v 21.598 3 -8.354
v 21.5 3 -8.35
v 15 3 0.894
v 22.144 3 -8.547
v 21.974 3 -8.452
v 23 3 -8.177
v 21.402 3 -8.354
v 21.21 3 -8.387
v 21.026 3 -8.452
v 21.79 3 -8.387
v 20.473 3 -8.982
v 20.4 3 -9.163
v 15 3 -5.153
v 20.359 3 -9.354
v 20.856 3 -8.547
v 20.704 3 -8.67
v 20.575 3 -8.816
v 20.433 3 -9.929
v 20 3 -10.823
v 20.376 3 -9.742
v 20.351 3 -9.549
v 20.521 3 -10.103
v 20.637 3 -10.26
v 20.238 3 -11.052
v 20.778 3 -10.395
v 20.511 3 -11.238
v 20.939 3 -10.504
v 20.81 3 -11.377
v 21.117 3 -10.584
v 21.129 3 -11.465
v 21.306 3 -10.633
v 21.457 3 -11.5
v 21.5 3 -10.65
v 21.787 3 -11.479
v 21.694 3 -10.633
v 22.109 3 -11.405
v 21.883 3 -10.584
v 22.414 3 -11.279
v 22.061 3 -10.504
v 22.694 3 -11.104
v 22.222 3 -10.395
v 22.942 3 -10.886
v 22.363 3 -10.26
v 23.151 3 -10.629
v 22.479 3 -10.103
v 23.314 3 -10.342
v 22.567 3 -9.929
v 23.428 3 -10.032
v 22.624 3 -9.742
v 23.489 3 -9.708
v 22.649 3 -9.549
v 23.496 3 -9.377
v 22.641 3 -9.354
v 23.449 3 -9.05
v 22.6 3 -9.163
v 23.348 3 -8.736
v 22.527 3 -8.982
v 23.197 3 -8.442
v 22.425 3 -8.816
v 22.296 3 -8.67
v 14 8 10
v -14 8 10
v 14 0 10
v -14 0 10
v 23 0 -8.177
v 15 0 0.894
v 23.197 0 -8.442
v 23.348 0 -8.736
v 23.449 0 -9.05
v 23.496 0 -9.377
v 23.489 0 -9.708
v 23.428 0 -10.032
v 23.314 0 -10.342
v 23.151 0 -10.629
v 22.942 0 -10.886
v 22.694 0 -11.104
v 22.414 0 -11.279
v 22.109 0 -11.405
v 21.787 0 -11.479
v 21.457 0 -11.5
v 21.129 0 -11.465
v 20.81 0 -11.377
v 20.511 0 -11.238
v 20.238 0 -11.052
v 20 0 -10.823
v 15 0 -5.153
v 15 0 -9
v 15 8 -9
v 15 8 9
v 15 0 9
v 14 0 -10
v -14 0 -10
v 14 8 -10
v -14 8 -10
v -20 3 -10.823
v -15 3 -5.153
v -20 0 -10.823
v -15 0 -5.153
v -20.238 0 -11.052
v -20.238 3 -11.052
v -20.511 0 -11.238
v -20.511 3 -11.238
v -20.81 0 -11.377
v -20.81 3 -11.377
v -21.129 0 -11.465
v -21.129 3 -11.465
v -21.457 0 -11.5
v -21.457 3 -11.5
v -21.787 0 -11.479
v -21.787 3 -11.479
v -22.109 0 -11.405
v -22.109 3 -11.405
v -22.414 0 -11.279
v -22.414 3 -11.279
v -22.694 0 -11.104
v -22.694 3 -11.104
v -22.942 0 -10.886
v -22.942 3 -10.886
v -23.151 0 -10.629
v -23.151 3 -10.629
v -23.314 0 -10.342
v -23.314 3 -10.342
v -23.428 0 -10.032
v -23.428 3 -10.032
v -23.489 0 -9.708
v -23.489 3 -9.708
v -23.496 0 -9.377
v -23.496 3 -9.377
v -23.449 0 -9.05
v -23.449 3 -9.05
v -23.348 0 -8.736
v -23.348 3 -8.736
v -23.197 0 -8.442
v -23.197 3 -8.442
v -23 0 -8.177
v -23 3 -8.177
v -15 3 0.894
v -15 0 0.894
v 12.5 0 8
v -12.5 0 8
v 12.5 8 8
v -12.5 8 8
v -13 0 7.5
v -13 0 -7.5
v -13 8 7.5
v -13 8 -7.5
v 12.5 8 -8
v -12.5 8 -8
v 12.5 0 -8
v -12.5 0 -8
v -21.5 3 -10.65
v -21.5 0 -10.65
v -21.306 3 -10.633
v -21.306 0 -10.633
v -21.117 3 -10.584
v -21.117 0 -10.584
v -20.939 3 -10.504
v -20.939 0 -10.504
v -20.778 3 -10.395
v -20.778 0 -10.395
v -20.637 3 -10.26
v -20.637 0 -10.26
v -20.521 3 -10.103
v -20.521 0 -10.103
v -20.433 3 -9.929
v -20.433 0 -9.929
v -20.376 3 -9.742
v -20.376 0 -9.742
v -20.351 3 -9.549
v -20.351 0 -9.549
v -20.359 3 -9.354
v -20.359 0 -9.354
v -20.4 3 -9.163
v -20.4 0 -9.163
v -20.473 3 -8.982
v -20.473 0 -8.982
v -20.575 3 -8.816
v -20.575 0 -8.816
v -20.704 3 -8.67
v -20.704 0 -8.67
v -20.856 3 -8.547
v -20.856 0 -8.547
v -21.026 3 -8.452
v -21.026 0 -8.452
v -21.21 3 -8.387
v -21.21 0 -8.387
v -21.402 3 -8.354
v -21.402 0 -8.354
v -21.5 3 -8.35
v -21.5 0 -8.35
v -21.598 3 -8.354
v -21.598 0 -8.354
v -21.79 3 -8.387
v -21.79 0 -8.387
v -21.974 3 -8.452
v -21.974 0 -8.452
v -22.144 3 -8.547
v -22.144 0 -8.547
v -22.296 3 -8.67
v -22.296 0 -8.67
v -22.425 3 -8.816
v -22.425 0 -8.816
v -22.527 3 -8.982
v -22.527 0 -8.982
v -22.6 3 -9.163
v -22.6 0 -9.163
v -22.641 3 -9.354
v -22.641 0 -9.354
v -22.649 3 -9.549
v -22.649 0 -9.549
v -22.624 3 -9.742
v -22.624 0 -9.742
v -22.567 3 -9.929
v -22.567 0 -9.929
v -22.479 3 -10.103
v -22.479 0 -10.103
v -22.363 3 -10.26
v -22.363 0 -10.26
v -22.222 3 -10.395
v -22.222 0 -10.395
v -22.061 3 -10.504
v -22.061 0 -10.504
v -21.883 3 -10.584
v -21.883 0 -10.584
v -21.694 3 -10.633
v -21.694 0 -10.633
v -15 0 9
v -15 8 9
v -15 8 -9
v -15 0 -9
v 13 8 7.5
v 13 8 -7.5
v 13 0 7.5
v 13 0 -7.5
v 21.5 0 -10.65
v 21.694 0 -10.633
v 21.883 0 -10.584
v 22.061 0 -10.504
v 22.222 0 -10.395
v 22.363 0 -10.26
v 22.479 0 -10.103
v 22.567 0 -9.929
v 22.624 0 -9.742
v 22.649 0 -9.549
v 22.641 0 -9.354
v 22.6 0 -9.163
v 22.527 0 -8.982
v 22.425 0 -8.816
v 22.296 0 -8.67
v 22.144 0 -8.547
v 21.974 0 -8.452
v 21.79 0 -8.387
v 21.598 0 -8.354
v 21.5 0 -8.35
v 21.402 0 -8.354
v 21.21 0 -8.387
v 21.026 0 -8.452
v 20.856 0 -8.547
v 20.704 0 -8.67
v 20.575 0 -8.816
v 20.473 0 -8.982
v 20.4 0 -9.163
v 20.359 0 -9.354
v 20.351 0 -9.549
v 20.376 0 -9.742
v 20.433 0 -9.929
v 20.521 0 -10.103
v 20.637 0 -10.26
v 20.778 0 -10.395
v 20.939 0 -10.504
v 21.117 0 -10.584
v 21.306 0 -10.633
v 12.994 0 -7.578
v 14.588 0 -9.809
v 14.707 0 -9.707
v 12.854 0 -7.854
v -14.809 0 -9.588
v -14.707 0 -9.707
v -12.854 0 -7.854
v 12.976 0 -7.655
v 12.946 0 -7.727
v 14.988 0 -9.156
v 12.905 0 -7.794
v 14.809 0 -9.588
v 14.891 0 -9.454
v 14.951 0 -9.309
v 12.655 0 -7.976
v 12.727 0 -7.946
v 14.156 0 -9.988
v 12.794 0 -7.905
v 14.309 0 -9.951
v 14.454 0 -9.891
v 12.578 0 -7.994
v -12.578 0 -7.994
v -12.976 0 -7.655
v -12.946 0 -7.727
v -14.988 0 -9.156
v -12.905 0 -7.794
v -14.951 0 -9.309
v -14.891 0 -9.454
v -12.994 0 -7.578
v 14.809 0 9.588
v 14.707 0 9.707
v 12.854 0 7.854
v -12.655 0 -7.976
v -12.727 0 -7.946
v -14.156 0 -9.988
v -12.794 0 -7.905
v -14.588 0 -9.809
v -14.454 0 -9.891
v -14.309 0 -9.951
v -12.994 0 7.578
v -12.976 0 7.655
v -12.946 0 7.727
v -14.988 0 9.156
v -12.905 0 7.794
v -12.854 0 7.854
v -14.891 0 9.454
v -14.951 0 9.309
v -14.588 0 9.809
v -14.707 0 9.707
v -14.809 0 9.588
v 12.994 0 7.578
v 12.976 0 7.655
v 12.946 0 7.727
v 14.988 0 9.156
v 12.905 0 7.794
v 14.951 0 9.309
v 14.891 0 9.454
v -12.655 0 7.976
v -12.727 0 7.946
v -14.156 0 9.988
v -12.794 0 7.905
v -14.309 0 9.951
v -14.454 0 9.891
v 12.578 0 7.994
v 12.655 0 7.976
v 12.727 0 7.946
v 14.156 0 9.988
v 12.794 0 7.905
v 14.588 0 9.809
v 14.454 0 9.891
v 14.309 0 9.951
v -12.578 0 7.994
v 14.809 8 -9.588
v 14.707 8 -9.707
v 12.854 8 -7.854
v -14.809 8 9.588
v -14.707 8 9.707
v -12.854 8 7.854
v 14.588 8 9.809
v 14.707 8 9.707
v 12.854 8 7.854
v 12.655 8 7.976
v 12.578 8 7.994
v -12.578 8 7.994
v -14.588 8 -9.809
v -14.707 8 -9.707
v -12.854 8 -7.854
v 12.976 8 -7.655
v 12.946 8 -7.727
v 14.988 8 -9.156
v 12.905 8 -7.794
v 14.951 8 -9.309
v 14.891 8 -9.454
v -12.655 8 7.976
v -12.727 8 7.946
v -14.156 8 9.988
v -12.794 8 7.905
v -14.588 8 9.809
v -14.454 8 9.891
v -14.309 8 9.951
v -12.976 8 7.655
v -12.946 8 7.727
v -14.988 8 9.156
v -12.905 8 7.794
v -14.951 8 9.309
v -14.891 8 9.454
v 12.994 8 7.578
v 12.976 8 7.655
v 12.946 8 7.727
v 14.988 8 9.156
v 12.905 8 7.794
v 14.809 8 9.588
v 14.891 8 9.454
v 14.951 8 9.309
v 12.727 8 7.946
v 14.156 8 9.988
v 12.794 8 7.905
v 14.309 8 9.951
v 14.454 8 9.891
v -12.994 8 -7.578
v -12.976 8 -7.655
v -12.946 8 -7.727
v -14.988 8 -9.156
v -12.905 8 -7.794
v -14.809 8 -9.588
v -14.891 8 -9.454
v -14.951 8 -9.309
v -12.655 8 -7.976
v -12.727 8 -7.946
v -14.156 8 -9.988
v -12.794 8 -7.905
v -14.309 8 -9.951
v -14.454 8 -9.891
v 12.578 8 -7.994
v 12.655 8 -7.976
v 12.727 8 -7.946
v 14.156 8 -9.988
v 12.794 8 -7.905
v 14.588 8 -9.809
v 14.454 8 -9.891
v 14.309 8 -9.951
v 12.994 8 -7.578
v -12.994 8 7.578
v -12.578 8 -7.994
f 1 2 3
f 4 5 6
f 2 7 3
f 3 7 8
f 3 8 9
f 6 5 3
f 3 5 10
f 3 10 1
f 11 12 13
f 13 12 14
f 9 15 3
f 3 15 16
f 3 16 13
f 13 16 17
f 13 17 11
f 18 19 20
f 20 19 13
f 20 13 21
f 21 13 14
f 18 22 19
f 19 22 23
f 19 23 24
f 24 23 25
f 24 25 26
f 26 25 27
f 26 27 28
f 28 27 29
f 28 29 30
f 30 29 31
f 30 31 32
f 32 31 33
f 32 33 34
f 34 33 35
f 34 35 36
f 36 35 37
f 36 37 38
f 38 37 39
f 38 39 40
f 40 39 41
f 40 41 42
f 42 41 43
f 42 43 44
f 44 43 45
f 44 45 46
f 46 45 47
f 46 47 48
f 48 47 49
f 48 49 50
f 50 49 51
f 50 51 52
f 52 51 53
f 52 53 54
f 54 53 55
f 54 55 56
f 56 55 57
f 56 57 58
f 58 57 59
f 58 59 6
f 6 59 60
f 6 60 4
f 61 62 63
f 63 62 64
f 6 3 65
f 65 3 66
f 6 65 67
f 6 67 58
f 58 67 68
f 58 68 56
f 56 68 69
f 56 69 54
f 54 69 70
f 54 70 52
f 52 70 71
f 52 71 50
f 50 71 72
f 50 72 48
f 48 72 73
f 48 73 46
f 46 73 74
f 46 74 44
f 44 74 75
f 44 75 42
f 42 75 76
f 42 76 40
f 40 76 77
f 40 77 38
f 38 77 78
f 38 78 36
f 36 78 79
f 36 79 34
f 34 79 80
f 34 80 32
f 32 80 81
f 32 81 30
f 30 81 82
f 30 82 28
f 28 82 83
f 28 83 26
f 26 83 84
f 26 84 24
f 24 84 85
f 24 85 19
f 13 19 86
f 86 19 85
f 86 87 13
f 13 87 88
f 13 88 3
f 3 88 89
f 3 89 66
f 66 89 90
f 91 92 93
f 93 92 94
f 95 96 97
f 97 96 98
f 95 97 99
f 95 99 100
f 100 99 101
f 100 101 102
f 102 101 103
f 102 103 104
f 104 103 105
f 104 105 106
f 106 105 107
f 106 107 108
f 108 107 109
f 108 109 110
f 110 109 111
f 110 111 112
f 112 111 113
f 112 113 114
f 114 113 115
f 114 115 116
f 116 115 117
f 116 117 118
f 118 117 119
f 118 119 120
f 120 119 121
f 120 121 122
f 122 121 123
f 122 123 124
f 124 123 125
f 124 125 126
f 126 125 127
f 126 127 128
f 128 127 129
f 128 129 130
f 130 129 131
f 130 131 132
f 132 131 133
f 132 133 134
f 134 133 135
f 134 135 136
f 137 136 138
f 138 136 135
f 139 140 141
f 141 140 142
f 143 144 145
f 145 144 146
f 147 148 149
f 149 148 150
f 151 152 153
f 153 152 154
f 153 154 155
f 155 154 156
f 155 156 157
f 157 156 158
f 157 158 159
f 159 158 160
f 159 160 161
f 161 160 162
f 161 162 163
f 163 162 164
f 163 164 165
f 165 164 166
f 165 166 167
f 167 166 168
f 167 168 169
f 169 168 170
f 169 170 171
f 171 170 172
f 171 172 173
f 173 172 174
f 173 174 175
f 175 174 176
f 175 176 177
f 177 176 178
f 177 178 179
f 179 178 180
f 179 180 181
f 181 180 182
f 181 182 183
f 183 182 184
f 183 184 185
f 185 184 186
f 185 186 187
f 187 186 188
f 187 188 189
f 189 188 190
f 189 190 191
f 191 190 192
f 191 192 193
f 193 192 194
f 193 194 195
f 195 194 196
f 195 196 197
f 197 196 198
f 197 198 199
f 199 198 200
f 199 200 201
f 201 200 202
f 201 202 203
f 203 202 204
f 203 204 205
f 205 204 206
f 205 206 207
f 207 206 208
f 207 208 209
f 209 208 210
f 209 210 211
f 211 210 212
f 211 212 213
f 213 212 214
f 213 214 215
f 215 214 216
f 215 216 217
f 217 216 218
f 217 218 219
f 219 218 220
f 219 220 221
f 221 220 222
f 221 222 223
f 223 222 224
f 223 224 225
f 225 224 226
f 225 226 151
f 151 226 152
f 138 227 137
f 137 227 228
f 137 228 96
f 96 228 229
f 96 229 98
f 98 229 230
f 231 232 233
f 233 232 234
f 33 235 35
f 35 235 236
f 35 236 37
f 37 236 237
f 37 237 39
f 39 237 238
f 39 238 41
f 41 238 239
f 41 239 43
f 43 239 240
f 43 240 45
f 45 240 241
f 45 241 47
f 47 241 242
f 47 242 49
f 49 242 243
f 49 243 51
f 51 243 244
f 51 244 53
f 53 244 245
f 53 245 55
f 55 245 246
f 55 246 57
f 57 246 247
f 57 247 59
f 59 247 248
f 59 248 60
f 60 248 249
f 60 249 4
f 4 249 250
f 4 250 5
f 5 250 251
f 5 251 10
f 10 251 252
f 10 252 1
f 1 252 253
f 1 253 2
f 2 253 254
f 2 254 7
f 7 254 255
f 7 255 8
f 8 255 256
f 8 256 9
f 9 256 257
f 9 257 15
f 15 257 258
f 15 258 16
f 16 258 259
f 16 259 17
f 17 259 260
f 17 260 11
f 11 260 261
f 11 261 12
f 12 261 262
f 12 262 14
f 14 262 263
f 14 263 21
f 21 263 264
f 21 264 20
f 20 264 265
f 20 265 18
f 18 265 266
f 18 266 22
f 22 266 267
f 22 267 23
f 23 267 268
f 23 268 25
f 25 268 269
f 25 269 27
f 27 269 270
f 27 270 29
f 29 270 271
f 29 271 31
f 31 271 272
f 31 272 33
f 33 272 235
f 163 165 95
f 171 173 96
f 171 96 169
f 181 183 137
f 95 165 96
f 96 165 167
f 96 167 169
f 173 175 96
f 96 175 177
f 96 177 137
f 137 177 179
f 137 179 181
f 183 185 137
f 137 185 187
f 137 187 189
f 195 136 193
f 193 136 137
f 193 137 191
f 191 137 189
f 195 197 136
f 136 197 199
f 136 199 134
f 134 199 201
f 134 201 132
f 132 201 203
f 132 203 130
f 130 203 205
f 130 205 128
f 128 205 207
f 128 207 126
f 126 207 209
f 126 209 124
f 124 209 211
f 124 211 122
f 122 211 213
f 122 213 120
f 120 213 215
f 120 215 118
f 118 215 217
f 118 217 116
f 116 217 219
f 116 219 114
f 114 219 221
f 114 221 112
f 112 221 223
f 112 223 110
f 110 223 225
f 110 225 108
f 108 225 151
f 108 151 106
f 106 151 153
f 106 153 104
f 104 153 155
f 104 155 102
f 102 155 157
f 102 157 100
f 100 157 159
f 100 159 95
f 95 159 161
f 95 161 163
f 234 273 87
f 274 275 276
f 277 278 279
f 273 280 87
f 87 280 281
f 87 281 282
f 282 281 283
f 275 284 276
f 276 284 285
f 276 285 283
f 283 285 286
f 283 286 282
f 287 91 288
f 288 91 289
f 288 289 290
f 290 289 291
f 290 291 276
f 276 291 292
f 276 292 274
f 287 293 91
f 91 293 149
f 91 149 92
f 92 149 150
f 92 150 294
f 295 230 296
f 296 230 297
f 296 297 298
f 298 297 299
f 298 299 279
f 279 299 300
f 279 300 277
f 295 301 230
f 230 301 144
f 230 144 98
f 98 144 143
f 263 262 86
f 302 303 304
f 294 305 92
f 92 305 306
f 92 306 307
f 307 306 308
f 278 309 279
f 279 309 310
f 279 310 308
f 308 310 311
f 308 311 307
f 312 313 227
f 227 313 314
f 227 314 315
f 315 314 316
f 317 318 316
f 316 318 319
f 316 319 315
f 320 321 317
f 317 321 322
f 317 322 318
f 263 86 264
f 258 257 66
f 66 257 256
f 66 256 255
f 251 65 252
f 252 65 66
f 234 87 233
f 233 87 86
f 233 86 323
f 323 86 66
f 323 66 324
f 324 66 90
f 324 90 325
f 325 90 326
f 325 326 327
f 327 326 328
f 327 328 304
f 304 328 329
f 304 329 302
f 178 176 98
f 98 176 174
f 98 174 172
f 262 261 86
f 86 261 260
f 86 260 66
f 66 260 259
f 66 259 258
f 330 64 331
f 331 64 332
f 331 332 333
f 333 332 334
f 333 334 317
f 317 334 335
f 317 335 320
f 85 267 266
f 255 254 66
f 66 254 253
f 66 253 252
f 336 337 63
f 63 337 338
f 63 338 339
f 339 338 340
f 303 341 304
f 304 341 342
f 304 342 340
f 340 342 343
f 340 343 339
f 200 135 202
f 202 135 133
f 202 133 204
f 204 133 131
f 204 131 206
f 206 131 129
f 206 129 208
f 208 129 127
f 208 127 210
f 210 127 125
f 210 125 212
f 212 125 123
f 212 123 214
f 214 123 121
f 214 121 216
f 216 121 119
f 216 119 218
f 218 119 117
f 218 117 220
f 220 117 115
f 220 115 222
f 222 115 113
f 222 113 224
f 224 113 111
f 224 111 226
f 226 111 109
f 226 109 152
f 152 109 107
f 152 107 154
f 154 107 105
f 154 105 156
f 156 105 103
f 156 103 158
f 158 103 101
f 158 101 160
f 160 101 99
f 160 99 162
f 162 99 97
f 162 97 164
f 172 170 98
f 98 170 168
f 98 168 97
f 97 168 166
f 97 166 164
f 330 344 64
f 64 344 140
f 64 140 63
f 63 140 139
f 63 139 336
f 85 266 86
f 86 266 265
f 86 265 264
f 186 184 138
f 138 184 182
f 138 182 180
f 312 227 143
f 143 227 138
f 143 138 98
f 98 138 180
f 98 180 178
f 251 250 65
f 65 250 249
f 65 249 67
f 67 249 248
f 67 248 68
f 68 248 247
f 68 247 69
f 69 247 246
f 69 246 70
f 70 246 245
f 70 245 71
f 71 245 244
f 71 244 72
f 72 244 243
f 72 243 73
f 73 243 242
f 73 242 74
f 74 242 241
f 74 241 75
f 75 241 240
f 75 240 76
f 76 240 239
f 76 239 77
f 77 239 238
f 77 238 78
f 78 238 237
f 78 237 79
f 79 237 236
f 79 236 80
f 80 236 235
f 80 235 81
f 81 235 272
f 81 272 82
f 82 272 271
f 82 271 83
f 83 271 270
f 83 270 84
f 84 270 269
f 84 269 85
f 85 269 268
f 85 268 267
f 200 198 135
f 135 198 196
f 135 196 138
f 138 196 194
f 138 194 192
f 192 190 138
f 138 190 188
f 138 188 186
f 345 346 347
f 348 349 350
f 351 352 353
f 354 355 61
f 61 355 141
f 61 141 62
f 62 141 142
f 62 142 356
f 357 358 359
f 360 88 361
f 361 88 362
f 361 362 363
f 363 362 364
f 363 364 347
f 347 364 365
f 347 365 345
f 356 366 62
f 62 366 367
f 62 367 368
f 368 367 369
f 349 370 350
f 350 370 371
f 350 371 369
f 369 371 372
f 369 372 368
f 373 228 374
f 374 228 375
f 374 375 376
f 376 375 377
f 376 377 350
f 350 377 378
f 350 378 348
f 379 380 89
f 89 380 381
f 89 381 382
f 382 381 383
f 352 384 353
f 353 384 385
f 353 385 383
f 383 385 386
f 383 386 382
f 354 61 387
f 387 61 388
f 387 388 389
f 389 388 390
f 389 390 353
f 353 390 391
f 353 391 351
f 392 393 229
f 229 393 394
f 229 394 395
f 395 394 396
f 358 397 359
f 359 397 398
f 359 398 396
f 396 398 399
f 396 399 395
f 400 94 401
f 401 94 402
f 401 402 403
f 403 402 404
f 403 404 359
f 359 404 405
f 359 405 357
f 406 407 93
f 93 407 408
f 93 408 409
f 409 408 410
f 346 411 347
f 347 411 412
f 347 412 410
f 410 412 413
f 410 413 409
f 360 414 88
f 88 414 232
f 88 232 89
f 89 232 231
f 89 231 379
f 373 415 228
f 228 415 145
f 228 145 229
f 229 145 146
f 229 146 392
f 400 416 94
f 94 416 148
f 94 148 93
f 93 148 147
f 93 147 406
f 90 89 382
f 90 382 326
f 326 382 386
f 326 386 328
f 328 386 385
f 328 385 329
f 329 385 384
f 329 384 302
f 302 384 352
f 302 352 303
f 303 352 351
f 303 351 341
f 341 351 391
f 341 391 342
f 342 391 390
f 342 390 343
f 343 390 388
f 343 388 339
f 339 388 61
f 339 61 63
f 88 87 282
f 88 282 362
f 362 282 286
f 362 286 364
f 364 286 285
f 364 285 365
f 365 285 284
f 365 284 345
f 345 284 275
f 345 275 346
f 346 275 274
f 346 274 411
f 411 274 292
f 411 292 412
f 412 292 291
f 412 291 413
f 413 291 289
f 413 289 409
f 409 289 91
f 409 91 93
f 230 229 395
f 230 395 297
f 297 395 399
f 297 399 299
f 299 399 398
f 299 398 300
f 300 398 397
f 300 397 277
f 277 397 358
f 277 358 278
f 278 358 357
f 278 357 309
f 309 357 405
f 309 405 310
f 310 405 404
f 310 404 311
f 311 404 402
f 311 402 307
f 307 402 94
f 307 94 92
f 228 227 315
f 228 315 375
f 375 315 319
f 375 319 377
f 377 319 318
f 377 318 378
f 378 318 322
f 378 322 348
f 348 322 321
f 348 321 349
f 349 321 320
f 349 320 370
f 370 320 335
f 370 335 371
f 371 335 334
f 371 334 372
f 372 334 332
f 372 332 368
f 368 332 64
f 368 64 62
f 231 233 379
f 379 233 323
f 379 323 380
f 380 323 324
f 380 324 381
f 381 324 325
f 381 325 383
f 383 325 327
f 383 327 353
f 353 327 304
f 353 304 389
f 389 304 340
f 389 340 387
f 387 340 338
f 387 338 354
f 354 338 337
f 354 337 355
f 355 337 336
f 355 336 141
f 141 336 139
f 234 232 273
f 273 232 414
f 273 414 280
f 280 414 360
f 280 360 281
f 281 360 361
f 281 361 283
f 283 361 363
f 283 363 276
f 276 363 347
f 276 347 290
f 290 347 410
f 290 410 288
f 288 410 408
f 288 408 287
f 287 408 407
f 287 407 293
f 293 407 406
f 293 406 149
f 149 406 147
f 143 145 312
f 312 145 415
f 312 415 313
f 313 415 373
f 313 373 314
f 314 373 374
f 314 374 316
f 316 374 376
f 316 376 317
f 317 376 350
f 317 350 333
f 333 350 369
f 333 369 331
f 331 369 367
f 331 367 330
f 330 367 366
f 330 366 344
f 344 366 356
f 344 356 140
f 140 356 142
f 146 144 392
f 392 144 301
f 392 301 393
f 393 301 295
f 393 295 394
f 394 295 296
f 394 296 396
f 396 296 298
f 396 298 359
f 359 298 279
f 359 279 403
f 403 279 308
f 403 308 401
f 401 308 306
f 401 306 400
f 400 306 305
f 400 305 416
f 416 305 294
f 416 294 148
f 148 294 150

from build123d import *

# Parameters (mm, degrees)
SKETCH1_W           = 30
SKETCH1_H           = 20
SKETCH1_W_2         = 26
SKETCH1_H_2         = 16
SKETCH1_R           = 1.15
BOSS_EXTRUDE1_DEPTH = 3
SKETCH2_W           = 30
SKETCH2_H           = 20
SKETCH2_W_2         = 26
SKETCH2_H_2         = 16
BOSS_EXTRUDE2_DEPTH = 5
FILLET1_R           = 1
FILLET2_R           = 0.5


with BuildPart() as part:
    # Sketch1 → Boss-Extrude1 (new body)
    # profile 1 of 3: a face of its own
    with BuildSketch(Plane(origin=(0, 0, 0), x_dir=(1, 0, 0), z_dir=(0, 1, 0))):
        Rectangle(SKETCH1_W, SKETCH1_H)
        Rectangle(SKETCH1_W_2, SKETCH1_H_2, mode=Mode.SUBTRACT)
    # profile 2 of 3: a face of its own
    with BuildSketch(Plane(origin=(0, 0, 0), x_dir=(1, 0, 0), z_dir=(0, 1, 0))):
        with BuildLine():
            Line((-15, -0.894023008), (-15, 5.15340856))
            Line((-15, 5.15340856), (-20, 10.822875656))
            ThreePointArc((-20, 10.822875656), (-22.822875656, 11), (-23, 8.177124344))
            Line((-23, 8.177124344), (-15, -0.894023008))
        make_face()
        with Locations(Location((-21.5, 9.5, 0), (0, 0, 270))):
            Circle(SKETCH1_R, mode=Mode.SUBTRACT)
    # profile 3 of 3: a face of its own
    with BuildSketch(Plane(origin=(0, 0, 0), x_dir=(1, 0, 0), z_dir=(0, 1, 0))):
        with BuildLine():
            Line((20, 10.822875656), (15, 5.15340856))
            Line((15, 5.15340856), (15, -0.894023008))
            Line((15, -0.894023008), (23, 8.177124344))
            ThreePointArc((23, 8.177124344), (22.822875656, 11), (20, 10.822875656))
        make_face()
        with Locations(Location((21.5, 9.5, 0), (0, 0, 270))):
            Circle(SKETCH1_R, mode=Mode.SUBTRACT)
    extrude(amount=BOSS_EXTRUDE1_DEPTH)

    # Sketch2 → Boss-Extrude2 (add)
    with BuildSketch(Plane(origin=(0, 3, 0), x_dir=(1, 0, 0), z_dir=(0, 1, 0))):
        Rectangle(SKETCH2_W, SKETCH2_H)
        Rectangle(SKETCH2_W_2, SKETCH2_H_2, mode=Mode.SUBTRACT)
    extrude(amount=BOSS_EXTRUDE2_DEPTH)

    # Fillet1
    fillet1_edges = [part.edges().sort_by_distance(p)[0] for p in [
        (-15, 4, 10),
        (-15, 4, -10),
        (15, 4, -10),
        (15, 4, 10),
    ]]
    fillet(fillet1_edges, radius=FILLET1_R)

    # Fillet2
    fillet2_edges = [part.edges().sort_by_distance(p)[0] for p in [
        (13, 4, 8),
        (13, 4, -8),
        (-13, 4, -8),
        (-13, 4, 8),
    ]]
    fillet(fillet2_edges, radius=FILLET2_R)


solid = part.part
